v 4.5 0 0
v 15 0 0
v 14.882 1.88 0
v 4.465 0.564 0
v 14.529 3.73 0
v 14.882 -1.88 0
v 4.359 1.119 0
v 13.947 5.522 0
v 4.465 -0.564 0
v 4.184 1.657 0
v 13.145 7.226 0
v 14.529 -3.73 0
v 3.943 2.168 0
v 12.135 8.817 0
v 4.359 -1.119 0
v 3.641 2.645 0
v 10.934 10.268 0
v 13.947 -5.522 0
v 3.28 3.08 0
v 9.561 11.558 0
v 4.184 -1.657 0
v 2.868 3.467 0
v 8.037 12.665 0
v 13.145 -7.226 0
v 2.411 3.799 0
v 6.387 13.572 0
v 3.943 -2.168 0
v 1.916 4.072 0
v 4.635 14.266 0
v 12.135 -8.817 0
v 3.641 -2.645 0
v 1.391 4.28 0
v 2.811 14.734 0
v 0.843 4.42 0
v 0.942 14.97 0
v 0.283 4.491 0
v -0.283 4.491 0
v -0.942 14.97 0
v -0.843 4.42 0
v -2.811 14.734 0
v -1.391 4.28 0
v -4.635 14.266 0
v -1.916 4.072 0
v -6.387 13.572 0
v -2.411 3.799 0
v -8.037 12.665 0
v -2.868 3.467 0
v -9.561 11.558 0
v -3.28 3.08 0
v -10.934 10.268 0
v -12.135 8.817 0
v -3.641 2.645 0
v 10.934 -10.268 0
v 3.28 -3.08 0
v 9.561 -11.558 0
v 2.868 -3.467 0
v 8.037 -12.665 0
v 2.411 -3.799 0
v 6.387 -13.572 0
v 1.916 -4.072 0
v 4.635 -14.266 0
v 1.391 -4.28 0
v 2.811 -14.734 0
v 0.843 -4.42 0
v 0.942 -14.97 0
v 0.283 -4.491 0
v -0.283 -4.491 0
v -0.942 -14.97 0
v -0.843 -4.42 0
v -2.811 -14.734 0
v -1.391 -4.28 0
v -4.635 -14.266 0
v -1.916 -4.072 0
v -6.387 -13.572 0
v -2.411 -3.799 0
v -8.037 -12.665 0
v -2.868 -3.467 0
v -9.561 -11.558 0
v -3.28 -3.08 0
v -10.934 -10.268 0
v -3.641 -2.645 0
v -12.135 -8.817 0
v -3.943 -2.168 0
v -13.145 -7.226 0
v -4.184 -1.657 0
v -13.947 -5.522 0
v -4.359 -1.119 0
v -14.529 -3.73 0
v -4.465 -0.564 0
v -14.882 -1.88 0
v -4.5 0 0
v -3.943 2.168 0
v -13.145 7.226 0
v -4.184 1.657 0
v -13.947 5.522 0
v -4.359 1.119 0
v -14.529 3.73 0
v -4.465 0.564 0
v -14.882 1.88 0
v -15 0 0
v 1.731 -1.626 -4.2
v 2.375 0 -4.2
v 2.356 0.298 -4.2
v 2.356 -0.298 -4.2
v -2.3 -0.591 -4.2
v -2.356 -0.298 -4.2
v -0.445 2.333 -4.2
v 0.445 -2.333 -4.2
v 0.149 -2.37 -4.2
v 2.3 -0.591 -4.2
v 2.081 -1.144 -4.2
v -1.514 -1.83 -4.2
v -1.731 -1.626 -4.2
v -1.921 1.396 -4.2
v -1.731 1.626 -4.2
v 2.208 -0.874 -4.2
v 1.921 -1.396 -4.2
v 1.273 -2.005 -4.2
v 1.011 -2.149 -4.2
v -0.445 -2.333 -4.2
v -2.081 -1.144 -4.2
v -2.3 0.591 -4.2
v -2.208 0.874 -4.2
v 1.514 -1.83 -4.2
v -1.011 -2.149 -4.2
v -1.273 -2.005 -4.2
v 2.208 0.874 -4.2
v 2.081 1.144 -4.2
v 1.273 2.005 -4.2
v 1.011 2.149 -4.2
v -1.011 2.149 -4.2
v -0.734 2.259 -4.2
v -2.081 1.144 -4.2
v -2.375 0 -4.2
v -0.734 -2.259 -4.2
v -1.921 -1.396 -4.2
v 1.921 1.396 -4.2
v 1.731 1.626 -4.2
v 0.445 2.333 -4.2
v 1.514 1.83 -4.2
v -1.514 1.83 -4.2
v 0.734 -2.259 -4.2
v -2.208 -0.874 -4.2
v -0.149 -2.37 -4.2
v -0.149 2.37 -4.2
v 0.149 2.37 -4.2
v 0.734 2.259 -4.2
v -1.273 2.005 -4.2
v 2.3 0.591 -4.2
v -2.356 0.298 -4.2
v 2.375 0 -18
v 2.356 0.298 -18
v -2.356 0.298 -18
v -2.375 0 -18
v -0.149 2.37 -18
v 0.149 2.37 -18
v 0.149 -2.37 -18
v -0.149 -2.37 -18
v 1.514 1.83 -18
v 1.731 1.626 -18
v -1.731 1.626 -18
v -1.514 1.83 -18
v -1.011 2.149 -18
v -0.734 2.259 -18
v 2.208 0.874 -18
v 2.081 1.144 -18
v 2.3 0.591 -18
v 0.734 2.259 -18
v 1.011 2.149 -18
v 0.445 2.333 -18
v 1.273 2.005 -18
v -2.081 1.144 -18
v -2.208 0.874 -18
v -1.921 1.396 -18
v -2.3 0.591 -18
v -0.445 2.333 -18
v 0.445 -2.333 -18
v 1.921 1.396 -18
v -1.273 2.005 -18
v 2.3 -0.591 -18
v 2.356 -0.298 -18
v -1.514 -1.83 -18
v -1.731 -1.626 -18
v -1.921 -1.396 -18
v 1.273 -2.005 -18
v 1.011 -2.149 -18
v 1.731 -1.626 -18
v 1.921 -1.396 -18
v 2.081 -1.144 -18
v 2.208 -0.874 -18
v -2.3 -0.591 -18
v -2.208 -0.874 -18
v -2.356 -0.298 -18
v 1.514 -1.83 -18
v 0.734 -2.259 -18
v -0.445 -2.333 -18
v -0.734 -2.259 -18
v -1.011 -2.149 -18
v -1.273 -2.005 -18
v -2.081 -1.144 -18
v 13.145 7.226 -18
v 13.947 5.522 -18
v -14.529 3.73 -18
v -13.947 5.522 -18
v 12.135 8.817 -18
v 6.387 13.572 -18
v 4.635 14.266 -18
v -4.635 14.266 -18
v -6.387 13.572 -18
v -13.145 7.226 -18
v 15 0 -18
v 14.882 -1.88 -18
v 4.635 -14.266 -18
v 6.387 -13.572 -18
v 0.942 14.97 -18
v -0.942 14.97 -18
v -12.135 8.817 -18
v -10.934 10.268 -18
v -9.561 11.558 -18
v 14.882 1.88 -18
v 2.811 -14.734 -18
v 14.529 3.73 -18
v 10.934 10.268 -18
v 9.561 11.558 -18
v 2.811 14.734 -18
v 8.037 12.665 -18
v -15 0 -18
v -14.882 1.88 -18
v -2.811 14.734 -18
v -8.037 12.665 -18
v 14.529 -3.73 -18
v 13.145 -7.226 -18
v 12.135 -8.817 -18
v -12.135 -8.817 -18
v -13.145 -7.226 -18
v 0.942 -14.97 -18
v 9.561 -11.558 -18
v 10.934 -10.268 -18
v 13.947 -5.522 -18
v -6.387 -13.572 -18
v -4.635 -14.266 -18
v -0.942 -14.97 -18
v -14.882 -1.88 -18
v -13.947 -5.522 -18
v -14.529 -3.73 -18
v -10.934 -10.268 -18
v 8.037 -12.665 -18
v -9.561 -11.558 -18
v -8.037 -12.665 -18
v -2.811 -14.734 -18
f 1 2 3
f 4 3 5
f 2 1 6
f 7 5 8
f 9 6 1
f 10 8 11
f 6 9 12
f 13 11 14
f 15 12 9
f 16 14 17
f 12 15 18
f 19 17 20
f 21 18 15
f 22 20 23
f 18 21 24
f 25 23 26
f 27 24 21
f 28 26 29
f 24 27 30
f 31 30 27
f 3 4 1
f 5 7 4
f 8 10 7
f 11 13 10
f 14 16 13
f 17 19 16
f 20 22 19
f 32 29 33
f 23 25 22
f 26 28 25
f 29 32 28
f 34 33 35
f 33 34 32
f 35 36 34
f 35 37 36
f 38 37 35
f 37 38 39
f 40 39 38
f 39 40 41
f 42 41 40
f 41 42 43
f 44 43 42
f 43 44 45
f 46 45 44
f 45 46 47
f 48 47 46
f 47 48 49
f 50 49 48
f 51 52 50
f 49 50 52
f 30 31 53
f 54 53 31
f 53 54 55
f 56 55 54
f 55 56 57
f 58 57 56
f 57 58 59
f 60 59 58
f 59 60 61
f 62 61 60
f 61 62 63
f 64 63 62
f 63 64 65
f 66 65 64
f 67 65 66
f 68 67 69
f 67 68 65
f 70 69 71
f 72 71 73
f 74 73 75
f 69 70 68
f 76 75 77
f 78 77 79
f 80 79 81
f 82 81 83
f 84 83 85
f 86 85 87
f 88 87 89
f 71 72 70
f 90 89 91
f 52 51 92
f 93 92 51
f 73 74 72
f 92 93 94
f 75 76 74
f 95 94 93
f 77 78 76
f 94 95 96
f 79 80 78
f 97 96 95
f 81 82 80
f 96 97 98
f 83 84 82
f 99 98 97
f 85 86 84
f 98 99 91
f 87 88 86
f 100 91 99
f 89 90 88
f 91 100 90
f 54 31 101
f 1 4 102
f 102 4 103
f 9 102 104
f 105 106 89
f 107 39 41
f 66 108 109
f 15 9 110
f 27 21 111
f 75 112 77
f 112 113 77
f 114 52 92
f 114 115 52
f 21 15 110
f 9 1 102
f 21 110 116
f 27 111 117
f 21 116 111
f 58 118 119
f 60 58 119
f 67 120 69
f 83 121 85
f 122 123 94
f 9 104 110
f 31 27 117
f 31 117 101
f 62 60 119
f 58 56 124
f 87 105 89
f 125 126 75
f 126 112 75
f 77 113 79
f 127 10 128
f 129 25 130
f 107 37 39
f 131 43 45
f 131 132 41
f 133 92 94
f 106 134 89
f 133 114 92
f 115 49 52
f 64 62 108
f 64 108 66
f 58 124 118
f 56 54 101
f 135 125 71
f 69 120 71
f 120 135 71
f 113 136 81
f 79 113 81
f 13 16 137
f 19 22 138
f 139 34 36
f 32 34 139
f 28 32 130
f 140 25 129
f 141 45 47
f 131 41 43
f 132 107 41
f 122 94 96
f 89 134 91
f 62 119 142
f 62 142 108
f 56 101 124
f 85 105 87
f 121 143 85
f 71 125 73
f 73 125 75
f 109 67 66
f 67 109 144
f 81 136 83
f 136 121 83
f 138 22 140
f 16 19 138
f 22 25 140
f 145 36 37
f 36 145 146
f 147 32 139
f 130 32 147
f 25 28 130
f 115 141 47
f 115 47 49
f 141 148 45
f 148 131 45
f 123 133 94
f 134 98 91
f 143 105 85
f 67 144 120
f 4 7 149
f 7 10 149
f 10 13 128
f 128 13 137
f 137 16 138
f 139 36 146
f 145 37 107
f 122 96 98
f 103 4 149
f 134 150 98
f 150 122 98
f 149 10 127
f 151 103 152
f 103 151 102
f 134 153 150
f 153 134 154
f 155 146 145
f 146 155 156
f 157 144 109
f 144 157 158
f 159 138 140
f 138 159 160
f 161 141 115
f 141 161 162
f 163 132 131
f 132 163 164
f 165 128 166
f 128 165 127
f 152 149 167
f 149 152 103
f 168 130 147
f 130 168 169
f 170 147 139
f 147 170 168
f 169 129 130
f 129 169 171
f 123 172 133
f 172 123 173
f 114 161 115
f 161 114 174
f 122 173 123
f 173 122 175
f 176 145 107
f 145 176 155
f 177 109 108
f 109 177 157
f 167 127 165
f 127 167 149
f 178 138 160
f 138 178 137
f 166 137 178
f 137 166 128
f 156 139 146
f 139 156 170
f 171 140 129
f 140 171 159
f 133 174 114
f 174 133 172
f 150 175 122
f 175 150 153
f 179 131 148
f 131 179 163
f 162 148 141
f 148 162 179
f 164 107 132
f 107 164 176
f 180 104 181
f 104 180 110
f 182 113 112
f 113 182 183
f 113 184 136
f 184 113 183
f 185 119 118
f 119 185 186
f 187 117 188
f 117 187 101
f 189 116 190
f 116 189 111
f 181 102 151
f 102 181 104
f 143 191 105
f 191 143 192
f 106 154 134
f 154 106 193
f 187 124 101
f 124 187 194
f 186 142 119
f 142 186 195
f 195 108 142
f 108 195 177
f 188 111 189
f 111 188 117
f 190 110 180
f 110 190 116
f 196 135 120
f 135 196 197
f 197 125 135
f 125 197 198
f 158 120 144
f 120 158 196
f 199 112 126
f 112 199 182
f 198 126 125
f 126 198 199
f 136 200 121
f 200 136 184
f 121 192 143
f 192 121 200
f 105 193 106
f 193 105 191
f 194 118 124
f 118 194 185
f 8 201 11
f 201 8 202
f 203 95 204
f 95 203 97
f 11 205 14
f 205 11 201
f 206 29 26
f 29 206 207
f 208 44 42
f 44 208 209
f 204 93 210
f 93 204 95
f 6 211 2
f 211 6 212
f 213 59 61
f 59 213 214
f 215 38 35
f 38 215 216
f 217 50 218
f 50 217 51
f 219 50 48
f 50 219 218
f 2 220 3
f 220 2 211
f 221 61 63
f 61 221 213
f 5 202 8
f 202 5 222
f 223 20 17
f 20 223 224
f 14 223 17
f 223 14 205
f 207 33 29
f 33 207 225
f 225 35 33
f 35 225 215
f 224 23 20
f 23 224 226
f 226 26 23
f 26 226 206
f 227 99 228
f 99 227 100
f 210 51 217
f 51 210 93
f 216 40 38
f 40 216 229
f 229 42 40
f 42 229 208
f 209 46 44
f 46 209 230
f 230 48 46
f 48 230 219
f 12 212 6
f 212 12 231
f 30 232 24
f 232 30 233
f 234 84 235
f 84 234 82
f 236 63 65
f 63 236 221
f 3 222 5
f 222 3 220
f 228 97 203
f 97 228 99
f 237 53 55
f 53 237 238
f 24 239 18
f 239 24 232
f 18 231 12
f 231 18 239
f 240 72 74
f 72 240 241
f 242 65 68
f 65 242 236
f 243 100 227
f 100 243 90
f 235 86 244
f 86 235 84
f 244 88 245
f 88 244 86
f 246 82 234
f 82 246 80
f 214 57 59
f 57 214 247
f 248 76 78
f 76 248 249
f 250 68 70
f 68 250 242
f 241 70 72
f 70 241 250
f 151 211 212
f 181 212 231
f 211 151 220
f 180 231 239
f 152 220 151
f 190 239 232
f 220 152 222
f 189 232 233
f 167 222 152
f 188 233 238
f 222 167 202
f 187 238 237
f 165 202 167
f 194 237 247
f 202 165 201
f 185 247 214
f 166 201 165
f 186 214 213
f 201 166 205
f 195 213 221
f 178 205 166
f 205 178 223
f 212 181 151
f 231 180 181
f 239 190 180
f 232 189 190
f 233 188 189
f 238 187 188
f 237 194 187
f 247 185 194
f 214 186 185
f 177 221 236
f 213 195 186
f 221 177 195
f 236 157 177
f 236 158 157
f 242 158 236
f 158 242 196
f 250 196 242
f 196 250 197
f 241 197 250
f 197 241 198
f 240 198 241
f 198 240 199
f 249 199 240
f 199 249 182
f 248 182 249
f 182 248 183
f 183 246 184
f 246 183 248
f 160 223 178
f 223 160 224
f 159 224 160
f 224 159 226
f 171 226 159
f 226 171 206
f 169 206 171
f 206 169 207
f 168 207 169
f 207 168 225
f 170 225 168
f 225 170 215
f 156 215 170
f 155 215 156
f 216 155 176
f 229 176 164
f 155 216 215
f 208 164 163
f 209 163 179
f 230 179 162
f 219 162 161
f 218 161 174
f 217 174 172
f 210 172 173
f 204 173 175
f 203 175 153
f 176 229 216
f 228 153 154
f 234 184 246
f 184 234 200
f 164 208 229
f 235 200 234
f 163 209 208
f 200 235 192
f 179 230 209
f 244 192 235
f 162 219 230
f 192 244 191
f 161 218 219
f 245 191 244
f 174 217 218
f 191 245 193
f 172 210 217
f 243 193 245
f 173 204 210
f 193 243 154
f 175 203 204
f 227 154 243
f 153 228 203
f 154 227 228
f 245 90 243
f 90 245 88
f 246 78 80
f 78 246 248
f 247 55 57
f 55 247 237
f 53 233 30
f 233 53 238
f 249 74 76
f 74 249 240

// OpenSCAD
$fn = 50;


difference() {
	union() {
		translate(v = [0, 0, -18.0000000000]) {
			cylinder(h = 18, r = 15.0000000000);
		}
	}
	union() {
		translate(v = [0, 0, 0]) {
			rotate(a = [0, 0, 0]) {
				difference() {
					union() {
						translate(v = [0, 0, -21.0000000000]) {
							cylinder(h = 21, r = 2.2500000000);
						}
						translate(v = [0, 0, -4.2000000000]) {
							cylinder(h = 4.2000000000, r1 = 2.3750000000, r2 = 4.5000000000);
						}
						translate(v = [0, 0, -21.0000000000]) {
							cylinder(h = 21, r = 2.3750000000);
						}
						translate(v = [0, 0, -21.0000000000]) {
							cylinder(h = 21, r = 2.2500000000);
						}
					}
					union();
				}
			}
		}
	}
}
